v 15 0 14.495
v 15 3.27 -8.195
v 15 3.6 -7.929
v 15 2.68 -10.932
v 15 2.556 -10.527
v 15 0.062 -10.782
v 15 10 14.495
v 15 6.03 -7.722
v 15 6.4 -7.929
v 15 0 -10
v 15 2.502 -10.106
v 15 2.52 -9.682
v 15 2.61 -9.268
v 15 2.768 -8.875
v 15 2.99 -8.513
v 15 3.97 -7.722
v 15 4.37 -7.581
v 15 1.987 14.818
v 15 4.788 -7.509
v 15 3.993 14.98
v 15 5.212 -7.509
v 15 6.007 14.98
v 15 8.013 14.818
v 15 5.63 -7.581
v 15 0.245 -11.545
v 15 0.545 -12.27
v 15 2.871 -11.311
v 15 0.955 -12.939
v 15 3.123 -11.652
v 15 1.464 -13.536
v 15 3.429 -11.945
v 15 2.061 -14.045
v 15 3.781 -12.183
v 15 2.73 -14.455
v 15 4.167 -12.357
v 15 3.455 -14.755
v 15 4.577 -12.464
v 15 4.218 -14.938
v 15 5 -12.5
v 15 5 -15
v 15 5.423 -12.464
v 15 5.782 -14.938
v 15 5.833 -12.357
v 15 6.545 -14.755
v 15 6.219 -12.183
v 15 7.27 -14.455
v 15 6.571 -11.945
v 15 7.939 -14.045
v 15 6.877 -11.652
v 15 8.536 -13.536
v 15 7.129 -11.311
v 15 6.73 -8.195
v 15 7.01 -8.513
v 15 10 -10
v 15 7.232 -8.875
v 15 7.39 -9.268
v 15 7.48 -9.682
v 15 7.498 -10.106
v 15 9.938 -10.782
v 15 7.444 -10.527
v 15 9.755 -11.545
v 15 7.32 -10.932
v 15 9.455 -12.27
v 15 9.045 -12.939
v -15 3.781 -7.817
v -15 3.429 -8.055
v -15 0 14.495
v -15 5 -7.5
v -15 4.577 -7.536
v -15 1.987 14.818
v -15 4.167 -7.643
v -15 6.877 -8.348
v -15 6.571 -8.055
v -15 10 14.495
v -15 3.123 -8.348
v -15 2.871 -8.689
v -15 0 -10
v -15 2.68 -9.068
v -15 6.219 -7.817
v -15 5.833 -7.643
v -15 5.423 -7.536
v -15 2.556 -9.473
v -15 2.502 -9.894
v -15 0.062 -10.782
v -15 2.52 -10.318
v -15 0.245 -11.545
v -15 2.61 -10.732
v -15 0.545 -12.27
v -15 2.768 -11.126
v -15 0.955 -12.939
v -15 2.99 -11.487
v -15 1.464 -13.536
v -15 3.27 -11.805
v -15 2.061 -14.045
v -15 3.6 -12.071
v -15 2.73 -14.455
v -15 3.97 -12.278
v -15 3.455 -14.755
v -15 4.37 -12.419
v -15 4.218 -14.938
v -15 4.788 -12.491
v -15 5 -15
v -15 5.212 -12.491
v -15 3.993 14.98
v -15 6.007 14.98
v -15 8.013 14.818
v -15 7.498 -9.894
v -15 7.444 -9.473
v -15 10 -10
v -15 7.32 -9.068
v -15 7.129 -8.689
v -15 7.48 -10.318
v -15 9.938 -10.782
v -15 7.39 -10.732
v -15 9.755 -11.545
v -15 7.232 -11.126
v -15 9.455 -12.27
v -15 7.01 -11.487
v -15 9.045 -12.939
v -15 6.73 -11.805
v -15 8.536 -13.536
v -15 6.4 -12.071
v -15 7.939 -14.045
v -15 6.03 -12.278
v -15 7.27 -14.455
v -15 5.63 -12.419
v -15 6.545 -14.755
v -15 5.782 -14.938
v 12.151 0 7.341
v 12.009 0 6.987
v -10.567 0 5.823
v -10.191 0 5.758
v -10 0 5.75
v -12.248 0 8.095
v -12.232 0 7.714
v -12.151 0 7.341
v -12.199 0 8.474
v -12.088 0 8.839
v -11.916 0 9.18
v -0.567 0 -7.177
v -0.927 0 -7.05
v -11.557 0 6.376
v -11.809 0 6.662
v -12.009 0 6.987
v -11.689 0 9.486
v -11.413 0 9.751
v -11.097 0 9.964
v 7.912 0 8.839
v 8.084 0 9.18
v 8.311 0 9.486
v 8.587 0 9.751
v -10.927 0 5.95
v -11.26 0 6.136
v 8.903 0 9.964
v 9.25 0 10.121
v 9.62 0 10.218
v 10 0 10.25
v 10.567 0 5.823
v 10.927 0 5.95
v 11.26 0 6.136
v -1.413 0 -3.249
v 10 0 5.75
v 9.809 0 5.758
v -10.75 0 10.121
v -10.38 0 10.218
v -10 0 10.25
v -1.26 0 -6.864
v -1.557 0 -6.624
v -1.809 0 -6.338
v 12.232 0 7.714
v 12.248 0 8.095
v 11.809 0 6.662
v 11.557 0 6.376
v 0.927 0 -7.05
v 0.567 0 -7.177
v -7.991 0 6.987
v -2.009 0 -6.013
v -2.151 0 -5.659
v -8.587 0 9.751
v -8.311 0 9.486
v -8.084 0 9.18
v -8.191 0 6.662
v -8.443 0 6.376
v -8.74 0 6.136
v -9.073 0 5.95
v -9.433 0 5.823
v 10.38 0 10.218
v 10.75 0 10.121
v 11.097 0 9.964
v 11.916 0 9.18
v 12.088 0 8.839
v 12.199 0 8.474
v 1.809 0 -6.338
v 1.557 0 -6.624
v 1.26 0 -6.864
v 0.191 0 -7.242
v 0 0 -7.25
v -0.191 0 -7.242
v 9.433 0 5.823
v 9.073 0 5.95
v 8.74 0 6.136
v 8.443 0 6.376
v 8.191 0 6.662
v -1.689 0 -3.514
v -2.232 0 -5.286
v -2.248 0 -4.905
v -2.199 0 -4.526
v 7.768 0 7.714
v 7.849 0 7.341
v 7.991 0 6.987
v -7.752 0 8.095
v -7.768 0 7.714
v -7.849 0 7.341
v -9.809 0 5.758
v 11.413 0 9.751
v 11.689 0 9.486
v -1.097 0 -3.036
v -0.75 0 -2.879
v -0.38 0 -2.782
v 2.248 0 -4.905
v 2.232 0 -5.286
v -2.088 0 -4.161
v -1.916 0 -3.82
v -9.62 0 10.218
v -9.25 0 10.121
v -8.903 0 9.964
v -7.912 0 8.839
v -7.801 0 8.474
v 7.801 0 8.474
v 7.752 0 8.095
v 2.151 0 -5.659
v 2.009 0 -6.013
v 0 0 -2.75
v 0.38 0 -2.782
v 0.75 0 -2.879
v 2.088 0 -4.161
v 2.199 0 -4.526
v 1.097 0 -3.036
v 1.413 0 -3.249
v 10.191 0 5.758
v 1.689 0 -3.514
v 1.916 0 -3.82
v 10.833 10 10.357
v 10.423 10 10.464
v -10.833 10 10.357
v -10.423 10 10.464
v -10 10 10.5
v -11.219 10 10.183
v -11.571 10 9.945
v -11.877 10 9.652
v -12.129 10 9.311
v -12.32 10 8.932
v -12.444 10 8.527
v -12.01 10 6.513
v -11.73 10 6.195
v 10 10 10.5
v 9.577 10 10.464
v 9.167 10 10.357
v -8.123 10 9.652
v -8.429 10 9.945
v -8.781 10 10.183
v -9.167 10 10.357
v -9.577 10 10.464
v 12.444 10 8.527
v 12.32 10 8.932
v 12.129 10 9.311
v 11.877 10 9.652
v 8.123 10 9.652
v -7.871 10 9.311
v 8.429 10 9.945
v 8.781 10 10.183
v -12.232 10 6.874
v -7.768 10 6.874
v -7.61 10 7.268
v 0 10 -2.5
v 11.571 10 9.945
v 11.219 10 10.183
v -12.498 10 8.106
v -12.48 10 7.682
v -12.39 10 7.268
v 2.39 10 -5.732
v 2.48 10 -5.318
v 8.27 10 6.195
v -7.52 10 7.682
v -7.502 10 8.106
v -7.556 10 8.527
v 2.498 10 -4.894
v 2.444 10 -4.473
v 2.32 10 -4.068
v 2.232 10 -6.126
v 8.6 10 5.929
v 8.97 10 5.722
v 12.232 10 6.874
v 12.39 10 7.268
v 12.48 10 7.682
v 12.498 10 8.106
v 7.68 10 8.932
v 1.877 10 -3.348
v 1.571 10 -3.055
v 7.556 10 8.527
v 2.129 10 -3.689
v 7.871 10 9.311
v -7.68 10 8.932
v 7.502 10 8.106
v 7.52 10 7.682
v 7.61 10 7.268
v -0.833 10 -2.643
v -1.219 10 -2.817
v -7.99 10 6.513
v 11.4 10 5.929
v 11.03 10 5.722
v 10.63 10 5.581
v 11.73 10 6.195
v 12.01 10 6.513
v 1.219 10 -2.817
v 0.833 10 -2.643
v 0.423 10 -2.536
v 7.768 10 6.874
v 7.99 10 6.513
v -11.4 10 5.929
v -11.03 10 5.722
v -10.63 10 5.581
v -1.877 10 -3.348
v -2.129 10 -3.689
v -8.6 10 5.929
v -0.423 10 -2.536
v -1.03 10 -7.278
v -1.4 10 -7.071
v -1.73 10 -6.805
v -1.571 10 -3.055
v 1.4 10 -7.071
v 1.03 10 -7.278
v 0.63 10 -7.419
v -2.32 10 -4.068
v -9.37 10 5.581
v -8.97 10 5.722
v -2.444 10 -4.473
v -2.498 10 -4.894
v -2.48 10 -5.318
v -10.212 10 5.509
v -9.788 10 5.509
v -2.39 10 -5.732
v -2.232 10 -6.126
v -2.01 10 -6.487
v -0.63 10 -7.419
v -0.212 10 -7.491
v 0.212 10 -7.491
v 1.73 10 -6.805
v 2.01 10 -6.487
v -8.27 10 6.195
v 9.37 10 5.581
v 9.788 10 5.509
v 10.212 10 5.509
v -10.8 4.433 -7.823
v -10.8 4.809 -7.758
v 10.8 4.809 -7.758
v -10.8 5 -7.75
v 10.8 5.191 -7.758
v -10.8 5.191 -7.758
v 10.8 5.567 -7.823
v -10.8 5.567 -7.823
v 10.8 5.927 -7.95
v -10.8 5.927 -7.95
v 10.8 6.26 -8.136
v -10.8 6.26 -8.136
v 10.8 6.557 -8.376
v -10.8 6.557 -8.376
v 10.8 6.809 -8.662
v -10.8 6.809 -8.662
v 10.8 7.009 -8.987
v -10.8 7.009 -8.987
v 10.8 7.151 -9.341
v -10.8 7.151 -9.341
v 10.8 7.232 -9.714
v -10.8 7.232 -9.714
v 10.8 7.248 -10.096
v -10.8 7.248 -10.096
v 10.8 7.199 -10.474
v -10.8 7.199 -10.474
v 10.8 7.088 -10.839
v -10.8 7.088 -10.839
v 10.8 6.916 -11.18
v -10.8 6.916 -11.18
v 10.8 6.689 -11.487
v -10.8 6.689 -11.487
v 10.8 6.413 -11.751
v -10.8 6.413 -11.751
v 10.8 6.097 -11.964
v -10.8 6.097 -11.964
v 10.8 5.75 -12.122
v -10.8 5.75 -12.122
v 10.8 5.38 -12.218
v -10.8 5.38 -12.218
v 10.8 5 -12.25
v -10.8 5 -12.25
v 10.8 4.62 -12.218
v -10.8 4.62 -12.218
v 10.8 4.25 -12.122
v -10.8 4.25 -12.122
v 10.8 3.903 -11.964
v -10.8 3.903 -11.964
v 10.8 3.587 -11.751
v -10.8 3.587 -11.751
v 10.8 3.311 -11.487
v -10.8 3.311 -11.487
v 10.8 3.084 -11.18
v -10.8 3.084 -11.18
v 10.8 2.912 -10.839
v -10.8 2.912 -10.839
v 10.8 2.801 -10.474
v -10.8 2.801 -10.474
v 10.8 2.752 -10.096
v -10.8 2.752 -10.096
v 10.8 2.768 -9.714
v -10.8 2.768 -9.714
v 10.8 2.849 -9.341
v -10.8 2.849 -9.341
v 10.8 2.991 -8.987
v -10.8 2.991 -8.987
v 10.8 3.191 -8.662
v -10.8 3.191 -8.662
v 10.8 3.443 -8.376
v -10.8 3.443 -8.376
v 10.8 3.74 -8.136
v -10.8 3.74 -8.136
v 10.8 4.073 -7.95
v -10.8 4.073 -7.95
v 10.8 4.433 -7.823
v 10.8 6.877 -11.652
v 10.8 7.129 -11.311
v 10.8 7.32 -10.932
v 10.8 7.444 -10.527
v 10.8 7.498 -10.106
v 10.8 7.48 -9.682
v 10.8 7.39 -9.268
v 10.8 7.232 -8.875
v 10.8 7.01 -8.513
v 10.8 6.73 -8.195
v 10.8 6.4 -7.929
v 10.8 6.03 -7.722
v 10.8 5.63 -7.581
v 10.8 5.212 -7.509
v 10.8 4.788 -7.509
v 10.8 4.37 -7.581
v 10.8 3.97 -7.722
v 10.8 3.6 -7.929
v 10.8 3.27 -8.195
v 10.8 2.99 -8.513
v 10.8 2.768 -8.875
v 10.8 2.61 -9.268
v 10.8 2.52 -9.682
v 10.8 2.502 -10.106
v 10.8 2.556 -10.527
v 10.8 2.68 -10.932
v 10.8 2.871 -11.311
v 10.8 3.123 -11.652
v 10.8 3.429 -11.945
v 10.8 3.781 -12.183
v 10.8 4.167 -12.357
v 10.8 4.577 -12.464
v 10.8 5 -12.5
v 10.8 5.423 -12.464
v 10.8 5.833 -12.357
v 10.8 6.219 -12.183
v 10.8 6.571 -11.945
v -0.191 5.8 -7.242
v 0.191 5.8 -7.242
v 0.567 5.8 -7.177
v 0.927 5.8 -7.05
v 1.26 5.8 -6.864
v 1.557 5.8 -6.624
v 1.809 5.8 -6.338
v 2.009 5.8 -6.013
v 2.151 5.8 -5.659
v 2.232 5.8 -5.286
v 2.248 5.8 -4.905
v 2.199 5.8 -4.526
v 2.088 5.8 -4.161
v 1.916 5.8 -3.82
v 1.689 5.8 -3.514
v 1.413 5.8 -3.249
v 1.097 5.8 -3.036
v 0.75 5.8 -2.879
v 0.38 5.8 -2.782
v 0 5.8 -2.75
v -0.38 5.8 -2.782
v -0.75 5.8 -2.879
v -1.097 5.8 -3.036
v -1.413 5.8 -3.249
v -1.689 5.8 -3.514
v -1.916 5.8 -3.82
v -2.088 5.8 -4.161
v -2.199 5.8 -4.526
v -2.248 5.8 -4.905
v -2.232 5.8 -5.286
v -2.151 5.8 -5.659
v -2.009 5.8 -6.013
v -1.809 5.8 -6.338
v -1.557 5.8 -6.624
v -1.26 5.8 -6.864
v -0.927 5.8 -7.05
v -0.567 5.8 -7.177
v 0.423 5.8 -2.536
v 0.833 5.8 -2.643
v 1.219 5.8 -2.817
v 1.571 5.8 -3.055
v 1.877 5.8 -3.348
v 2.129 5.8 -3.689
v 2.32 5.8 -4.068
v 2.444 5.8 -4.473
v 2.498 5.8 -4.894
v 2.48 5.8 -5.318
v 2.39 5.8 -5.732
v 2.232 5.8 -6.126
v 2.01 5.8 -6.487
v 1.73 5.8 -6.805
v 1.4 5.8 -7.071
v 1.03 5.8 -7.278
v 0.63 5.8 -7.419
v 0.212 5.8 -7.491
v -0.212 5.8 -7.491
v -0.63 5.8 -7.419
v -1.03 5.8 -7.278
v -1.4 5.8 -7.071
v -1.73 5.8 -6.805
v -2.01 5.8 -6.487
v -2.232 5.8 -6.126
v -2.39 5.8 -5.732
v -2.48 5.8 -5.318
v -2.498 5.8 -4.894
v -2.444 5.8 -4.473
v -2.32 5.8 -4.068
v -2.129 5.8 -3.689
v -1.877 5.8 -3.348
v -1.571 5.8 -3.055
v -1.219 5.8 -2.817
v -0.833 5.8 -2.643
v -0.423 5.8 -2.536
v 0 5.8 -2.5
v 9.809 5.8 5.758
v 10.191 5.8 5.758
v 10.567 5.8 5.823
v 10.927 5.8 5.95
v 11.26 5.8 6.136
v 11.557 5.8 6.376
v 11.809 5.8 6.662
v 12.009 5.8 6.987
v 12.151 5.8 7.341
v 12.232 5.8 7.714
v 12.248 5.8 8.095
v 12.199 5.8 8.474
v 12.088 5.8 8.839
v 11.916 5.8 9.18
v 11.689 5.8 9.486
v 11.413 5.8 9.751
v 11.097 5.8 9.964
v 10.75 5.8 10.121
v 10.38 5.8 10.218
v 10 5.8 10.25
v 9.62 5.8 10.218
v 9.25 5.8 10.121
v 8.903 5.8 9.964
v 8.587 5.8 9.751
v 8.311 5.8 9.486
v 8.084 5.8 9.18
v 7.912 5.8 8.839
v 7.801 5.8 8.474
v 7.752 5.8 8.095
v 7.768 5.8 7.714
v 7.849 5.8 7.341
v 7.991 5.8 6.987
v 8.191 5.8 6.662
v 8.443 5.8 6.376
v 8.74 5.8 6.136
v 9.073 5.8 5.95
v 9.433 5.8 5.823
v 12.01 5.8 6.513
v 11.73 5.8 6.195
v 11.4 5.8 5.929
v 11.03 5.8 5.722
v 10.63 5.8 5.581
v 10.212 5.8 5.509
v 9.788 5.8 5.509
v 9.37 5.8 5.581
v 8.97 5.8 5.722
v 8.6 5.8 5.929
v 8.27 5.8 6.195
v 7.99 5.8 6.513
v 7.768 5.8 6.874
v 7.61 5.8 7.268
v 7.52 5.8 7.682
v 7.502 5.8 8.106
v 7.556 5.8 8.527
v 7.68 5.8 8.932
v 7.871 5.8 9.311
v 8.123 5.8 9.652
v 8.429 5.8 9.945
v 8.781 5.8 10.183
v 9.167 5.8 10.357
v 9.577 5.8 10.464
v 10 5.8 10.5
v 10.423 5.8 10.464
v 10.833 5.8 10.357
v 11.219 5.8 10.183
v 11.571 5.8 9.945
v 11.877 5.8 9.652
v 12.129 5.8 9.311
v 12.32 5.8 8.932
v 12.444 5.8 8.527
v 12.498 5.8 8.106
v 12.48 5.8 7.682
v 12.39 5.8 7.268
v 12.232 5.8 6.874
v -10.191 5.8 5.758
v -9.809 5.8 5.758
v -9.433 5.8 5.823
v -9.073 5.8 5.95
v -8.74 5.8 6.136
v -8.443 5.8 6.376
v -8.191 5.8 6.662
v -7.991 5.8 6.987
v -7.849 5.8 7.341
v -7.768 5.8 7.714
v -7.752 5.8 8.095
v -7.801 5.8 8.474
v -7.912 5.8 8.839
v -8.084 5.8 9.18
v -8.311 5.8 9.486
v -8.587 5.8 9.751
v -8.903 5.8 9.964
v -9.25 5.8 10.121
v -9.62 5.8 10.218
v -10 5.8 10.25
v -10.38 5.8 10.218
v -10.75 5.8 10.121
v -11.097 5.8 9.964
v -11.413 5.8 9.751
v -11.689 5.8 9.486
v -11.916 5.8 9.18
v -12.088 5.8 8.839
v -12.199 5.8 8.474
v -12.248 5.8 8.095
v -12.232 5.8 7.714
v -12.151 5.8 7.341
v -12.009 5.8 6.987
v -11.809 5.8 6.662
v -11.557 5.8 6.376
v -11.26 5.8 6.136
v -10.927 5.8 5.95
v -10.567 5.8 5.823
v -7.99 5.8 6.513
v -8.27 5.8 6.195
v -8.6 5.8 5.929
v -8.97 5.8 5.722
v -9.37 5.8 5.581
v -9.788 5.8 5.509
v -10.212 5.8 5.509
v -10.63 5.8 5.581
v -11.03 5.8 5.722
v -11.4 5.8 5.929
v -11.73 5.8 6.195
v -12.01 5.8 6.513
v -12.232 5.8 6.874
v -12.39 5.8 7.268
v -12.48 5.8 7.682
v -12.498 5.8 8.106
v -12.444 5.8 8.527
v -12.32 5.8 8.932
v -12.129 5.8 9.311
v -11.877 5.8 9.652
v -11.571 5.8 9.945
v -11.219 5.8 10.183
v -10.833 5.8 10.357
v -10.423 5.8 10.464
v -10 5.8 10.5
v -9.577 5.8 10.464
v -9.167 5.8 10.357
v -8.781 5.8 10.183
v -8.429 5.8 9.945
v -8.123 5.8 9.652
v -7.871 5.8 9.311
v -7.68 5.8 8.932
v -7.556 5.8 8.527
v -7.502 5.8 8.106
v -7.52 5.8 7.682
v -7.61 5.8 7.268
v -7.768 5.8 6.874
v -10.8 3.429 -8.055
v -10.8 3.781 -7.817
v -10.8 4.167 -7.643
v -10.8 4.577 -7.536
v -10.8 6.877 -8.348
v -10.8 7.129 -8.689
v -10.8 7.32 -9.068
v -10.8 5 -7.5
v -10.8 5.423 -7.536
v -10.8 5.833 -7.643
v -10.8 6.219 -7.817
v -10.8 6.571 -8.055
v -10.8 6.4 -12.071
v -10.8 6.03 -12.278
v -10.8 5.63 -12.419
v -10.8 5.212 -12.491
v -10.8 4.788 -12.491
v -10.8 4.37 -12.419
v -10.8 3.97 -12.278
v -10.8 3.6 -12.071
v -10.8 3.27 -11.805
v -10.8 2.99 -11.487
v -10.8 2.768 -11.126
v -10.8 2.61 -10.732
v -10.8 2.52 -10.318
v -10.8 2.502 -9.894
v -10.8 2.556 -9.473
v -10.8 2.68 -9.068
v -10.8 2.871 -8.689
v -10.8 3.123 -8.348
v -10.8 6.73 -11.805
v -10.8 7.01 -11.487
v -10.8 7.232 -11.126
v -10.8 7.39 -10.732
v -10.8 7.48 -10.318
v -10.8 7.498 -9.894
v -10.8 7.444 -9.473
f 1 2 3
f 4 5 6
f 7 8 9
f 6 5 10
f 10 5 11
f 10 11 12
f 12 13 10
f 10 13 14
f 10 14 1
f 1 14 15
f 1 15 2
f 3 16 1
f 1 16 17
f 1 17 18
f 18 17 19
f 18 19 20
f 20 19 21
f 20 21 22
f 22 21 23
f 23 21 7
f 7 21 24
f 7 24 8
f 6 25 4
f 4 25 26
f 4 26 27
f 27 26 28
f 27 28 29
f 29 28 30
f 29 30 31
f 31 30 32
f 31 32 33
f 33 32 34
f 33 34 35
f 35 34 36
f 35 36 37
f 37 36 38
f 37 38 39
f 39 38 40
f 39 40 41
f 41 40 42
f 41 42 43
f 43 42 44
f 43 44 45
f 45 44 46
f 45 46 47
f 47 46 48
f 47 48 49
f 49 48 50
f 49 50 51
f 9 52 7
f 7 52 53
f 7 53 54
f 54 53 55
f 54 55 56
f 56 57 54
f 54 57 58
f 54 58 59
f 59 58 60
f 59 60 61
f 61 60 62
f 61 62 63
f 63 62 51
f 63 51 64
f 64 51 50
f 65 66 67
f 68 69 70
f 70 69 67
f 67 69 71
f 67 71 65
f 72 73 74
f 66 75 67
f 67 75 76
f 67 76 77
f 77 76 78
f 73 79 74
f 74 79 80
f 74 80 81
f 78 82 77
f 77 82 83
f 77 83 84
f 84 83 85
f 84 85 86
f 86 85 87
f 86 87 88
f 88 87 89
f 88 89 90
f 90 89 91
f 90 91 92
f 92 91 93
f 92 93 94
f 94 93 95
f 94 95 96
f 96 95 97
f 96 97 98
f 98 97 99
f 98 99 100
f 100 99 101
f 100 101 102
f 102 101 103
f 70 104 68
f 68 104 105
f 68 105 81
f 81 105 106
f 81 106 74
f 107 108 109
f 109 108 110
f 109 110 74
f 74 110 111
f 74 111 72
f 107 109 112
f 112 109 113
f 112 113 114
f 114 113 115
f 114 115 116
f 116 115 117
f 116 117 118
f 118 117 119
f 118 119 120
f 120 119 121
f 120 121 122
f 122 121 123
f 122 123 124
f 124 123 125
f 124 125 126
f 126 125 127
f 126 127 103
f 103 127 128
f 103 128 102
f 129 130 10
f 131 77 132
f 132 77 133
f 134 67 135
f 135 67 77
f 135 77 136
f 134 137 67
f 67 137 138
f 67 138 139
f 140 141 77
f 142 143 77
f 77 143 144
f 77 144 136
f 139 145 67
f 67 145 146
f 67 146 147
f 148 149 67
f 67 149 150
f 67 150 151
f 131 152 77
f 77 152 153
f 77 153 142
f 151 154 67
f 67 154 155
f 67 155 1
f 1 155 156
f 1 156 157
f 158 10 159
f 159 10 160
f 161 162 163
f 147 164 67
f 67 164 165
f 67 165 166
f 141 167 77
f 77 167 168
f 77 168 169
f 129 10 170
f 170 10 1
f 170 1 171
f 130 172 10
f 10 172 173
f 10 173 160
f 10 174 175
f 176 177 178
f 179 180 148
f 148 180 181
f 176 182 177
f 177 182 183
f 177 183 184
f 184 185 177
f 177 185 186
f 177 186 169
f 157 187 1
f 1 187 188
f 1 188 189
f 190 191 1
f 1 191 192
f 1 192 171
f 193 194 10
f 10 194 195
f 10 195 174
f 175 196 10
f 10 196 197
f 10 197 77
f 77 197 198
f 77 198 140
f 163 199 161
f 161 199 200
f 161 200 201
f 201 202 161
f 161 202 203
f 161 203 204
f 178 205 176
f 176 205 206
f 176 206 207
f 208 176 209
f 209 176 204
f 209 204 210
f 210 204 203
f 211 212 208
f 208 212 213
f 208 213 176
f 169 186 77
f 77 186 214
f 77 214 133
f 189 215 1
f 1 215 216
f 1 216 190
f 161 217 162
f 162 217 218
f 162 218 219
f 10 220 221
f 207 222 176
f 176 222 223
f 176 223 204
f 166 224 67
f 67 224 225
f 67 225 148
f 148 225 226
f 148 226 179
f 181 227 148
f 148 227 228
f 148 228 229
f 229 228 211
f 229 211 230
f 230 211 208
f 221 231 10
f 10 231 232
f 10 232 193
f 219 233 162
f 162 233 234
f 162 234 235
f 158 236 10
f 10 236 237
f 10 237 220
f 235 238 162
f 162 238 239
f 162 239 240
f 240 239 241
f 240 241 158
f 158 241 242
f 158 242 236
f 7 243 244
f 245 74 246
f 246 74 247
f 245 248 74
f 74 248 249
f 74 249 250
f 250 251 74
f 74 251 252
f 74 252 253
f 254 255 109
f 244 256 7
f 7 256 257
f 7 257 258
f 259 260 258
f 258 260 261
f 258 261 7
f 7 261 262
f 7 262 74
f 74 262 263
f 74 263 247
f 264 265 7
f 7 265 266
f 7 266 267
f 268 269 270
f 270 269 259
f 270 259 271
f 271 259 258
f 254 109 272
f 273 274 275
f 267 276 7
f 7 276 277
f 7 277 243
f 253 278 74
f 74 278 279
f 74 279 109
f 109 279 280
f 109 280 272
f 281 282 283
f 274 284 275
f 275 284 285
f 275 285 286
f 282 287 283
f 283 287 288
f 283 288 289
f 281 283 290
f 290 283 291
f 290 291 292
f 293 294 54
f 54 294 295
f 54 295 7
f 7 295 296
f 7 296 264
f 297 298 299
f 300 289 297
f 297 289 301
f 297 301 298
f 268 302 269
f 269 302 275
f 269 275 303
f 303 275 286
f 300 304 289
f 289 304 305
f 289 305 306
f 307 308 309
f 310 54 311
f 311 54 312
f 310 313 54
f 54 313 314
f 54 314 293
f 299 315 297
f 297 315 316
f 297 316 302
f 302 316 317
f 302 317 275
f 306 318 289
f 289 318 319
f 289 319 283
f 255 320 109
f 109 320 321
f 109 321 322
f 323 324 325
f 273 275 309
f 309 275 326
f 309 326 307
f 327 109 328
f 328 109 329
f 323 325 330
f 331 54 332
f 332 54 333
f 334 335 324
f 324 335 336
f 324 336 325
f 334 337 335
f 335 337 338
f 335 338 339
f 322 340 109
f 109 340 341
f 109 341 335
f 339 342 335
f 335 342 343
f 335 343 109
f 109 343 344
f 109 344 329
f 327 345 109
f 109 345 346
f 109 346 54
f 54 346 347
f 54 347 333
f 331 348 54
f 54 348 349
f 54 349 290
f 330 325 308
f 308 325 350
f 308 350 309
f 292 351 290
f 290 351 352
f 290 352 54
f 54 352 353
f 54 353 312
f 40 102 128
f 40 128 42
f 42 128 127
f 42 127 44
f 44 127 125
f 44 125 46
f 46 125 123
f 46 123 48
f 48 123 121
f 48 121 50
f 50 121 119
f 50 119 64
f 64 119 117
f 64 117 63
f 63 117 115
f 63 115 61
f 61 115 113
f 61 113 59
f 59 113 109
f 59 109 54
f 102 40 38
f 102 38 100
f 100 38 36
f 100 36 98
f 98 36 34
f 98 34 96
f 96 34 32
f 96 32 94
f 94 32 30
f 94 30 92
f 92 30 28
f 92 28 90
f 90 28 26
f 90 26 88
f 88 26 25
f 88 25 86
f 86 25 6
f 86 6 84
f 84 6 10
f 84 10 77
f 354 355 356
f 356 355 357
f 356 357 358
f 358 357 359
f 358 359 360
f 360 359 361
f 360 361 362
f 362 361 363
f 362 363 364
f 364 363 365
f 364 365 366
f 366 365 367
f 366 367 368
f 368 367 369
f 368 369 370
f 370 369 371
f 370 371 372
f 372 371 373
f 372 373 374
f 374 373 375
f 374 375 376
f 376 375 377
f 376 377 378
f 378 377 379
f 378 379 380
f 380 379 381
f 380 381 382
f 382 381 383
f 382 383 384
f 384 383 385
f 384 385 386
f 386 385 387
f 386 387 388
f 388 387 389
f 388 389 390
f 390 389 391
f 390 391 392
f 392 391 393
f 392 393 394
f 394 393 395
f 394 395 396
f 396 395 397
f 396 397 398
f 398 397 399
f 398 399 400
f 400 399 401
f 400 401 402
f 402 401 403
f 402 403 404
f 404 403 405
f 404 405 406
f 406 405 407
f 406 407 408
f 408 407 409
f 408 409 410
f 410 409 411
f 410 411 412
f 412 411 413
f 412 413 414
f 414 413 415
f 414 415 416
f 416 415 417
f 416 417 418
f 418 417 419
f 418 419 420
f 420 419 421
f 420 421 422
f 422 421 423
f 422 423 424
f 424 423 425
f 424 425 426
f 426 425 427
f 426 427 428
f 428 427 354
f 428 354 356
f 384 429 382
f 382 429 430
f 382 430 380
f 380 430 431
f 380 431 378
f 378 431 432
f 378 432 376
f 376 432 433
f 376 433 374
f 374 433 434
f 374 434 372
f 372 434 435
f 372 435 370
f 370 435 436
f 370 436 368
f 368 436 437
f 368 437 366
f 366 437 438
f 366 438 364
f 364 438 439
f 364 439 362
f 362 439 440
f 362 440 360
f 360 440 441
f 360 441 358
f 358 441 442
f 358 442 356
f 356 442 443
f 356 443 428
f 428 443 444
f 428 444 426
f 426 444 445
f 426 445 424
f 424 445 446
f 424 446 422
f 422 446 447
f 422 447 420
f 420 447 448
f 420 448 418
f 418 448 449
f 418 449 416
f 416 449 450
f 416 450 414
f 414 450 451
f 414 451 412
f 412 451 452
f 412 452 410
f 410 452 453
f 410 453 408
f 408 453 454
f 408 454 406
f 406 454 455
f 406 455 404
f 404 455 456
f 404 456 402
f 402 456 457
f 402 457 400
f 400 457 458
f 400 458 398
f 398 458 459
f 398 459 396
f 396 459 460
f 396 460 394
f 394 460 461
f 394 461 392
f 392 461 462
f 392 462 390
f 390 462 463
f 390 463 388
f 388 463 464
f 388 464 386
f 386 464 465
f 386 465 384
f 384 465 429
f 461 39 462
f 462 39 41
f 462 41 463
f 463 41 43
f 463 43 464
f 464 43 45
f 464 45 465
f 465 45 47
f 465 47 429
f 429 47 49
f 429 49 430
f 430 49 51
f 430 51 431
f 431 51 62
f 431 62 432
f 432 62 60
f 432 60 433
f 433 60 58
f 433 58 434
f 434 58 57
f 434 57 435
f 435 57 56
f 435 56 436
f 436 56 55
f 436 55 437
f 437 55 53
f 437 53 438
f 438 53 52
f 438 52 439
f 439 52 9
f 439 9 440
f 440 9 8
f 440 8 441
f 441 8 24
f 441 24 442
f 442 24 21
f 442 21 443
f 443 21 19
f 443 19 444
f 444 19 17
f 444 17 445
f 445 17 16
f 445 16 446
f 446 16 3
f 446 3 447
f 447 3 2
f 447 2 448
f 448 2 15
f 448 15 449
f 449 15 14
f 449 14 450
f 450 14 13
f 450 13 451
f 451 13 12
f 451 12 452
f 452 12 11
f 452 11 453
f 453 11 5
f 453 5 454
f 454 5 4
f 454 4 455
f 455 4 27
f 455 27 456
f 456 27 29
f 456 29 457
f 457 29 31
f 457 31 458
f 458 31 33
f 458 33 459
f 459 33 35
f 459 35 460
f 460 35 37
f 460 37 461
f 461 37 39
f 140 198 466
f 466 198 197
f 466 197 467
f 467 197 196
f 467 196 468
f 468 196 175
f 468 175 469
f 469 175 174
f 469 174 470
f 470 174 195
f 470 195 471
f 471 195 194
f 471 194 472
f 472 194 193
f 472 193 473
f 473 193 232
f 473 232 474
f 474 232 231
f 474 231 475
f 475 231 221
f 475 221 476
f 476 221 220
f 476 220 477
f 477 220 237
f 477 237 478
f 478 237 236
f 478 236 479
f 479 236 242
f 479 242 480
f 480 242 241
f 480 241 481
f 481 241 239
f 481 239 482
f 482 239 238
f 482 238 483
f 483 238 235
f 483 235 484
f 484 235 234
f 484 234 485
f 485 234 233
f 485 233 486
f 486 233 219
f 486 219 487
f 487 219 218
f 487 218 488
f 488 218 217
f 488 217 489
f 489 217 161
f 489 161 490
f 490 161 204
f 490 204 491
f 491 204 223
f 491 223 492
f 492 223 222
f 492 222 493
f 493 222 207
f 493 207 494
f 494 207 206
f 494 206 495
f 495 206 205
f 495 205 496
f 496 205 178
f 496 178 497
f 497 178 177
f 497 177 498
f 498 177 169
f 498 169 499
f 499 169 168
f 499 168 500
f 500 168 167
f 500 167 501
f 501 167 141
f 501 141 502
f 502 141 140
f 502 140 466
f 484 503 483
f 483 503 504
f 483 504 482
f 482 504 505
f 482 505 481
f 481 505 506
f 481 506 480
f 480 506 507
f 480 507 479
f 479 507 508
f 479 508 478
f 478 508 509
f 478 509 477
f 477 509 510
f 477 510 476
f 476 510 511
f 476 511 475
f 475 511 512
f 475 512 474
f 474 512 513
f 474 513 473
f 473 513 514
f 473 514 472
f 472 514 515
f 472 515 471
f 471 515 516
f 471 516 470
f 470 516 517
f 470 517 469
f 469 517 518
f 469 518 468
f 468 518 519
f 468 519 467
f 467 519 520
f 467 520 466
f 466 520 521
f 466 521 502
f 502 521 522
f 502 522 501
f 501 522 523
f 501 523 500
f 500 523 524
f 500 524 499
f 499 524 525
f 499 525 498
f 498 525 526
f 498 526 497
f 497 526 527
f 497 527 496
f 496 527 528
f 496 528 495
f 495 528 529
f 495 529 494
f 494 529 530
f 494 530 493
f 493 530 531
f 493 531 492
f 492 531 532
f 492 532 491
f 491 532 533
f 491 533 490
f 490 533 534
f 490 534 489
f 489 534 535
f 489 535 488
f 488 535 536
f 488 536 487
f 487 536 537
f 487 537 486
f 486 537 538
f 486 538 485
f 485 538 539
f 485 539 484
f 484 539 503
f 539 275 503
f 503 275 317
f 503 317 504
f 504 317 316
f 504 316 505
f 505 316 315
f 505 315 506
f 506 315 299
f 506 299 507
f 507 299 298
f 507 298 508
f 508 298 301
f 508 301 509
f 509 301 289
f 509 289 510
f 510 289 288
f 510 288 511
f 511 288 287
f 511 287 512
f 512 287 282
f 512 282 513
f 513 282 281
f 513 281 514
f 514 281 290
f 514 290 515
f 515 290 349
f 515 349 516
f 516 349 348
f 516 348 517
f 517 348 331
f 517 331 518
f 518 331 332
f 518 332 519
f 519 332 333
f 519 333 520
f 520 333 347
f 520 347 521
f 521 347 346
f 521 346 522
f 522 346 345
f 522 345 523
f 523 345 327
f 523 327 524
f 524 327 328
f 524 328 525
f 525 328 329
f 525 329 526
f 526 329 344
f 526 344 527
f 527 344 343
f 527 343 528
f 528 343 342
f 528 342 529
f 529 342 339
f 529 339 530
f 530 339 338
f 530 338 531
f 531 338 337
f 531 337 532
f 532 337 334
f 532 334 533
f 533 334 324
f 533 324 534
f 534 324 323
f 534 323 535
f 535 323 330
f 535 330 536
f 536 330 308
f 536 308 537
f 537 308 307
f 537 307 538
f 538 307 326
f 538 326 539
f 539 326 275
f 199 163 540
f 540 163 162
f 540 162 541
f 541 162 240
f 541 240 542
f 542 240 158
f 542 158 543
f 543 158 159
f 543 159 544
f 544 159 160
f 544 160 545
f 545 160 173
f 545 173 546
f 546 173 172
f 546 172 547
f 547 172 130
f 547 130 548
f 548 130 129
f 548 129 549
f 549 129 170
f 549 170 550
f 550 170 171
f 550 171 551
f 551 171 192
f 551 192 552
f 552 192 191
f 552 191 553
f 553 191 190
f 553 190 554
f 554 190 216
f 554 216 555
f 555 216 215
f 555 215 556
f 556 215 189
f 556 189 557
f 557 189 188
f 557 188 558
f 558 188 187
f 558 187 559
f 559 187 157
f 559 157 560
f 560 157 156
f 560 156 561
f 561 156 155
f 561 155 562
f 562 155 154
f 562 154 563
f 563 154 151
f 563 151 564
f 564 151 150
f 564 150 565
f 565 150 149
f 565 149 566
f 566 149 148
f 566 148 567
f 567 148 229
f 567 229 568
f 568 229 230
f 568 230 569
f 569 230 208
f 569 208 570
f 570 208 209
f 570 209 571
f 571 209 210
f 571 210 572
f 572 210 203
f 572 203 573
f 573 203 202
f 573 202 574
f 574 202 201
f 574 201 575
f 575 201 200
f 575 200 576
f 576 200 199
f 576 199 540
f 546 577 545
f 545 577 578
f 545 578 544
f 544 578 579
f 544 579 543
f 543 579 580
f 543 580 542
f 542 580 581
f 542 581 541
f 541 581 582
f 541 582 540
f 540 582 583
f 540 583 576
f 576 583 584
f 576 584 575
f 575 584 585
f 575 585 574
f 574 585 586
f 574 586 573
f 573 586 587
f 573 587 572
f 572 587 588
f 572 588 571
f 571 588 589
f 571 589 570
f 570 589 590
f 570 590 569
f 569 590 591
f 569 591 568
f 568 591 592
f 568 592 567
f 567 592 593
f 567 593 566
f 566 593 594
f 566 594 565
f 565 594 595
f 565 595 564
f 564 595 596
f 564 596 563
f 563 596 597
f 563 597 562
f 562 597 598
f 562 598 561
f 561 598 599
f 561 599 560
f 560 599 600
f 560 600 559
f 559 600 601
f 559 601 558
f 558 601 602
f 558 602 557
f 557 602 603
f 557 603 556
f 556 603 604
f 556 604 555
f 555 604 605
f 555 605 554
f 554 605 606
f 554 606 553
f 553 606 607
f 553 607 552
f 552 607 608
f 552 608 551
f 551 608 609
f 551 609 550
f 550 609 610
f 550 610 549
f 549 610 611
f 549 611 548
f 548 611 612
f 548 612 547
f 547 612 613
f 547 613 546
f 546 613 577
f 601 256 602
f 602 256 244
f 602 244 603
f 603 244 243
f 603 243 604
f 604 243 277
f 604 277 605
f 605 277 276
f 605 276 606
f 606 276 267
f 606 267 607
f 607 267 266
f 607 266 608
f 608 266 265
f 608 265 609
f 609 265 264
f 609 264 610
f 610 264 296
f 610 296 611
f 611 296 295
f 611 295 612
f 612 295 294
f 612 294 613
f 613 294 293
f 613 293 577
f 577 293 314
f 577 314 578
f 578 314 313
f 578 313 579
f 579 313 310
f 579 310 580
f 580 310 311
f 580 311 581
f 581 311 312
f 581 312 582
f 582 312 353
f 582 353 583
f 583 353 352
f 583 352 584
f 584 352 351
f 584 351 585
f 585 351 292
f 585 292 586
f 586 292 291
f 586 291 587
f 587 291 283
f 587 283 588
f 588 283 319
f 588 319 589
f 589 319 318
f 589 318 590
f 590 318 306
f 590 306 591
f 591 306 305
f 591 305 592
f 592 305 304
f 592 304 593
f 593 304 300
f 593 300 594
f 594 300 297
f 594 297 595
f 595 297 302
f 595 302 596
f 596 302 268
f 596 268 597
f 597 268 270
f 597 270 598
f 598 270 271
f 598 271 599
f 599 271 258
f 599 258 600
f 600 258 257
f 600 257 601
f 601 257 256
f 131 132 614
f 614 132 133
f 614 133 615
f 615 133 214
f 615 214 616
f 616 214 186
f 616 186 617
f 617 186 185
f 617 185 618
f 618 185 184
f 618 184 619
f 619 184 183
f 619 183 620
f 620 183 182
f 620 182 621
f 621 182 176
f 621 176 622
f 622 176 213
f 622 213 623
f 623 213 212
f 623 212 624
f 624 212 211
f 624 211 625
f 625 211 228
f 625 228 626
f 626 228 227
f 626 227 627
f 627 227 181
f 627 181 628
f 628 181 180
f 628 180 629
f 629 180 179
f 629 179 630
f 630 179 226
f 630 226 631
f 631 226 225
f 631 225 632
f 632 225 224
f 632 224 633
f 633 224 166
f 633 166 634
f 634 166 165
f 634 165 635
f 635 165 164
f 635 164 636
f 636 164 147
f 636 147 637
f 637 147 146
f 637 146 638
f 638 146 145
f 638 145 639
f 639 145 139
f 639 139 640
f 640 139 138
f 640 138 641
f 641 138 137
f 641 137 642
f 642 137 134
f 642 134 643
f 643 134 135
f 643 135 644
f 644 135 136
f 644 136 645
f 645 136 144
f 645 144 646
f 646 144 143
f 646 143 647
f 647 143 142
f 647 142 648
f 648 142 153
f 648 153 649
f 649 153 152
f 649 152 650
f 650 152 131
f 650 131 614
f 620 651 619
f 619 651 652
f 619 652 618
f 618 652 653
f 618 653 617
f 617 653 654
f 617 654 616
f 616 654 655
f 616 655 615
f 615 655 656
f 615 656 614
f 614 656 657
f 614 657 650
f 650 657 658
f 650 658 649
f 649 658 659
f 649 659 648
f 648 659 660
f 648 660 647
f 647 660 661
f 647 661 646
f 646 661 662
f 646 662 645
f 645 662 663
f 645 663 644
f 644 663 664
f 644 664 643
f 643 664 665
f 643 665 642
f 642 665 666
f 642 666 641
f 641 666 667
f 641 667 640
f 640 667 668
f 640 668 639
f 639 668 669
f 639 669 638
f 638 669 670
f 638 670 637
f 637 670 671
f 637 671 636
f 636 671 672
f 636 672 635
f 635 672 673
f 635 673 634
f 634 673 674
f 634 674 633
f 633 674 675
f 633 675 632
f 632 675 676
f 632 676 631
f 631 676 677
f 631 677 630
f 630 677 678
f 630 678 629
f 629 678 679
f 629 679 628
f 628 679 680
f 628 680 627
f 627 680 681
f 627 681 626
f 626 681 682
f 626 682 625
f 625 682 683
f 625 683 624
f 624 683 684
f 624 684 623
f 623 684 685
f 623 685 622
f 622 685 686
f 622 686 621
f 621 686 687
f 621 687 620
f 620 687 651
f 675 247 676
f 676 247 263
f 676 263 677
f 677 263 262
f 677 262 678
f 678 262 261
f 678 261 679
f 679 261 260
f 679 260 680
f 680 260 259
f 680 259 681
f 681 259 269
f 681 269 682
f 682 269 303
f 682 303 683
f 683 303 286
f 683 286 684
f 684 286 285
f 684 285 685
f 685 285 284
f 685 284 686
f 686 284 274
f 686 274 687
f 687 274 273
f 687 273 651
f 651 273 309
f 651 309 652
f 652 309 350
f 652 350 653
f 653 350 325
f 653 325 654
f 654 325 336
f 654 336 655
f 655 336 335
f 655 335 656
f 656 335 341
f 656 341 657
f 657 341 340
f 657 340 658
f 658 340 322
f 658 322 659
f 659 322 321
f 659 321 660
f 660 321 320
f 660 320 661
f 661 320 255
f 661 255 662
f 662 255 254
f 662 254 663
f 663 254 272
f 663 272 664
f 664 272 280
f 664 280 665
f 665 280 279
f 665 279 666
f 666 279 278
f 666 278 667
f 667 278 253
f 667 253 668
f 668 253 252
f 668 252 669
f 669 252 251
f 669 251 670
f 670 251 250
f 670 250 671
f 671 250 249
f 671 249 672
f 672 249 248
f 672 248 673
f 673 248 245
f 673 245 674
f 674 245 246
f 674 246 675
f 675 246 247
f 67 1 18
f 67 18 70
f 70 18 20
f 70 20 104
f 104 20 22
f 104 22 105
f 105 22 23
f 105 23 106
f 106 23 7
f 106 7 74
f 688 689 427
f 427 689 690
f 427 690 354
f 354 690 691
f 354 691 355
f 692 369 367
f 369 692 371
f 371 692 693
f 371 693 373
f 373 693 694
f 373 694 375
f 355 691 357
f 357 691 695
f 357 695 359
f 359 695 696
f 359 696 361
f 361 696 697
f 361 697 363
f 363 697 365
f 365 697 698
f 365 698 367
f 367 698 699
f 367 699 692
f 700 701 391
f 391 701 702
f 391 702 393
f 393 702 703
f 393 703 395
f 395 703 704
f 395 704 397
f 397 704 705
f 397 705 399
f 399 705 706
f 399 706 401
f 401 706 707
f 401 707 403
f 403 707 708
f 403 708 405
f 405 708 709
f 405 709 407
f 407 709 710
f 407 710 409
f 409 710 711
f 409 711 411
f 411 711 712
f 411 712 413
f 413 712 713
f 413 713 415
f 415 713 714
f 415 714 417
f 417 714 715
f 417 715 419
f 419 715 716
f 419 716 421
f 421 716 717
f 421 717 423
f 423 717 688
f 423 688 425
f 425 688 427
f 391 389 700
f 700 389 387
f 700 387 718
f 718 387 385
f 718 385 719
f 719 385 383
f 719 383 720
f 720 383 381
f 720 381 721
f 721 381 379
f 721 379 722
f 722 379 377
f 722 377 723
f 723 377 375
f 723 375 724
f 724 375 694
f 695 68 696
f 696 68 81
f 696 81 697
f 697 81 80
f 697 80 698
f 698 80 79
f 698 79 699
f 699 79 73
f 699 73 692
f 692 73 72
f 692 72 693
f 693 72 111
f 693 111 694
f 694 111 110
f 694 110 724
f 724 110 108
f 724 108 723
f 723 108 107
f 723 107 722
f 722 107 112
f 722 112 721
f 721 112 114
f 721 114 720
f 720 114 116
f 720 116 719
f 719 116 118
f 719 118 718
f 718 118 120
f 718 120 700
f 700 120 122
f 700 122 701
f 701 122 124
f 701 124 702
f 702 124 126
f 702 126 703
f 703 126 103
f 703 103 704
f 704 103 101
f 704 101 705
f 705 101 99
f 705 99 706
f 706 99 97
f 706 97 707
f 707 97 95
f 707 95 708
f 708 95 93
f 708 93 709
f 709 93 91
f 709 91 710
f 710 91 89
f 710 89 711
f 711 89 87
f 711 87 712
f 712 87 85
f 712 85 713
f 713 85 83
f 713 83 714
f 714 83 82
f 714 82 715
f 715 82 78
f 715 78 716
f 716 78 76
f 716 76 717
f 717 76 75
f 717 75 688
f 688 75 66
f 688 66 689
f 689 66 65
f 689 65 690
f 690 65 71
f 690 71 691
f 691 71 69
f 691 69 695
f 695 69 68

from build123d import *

# Parameters (mm, degrees)
SKETCH1_W                               = 30
SKETCH1_H                               = 30
BOSS_EXTRUDE1_DEPTH                     = 10
FILLET1_R                               = 5
CBORE_FOR_M5_HEX_HEAD_BOLT2_D           = 4.5
CBORE_FOR_M5_HEX_HEAD_BOLT2_CBORE_D     = 5
CBORE_FOR_M5_HEX_HEAD_BOLT2_CBORE_DEPTH = 4.2
CBORE_FOR_M5_HEX_HEAD_BOLT1_D           = 4.5
CBORE_FOR_M5_HEX_HEAD_BOLT1_CBORE_D     = 5
CBORE_FOR_M5_HEX_HEAD_BOLT1_CBORE_DEPTH = 4.2
CUT_EXTRUDE1_DEPTH                      = 36


with BuildPart() as part:
    # Sketch1 → Boss-Extrude1 (new body)
    with BuildSketch(Plane(origin=(0, 0, 0), x_dir=(1, 0, 0), z_dir=(0, 1, 0))):
        Rectangle(SKETCH1_W, SKETCH1_H)
    extrude(amount=BOSS_EXTRUDE1_DEPTH)

    # Fillet1
    fillet1_edges = [part.edges().sort_by_distance(p)[0] for p in [
        (0, 0, -15),
        (0, 10, -15),
    ]]
    fillet(fillet1_edges, radius=FILLET1_R - 0.0001)  # a hair under: the kernel refuses the full size

    # CBORE for M5 Hex Head Bolt2 (through all)
    with Locations(Plane(origin=(15, 0, 0), x_dir=(0, 0, -1), z_dir=(1, 0, 0))):
        with Locations((10, 5)):
            cbore_for_m5_hex_head_bolt2 = CounterBoreHole(CBORE_FOR_M5_HEX_HEAD_BOLT2_D / 2, CBORE_FOR_M5_HEX_HEAD_BOLT2_CBORE_D / 2, CBORE_FOR_M5_HEX_HEAD_BOLT2_CBORE_DEPTH)

    # CBORE for M5 Hex Head Bolt1 (through all)
    with Locations(Plane(origin=(0, 10, 0), x_dir=(1, 0, 0), z_dir=(0, 1, 0))):
        with Locations((-10, -8), (10, -8), (0, 5)):
            CounterBoreHole(CBORE_FOR_M5_HEX_HEAD_BOLT1_D / 2, CBORE_FOR_M5_HEX_HEAD_BOLT1_CBORE_D / 2, CBORE_FOR_M5_HEX_HEAD_BOLT1_CBORE_DEPTH)

    # Sketch9 → Cut-Extrude1 (cut, through all)
    with BuildSketch(Plane(origin=(15, 0, 0), x_dir=(0, 0, -1), z_dir=(1, 0, 0))):
        with BuildLine():
            Line((-15, 10), (-15, 5))
            ThreePointArc((-15, 5), (-14.873403825, 7.51272405), (-14.494897428, 10))
            Line((-14.494897428, 10), (-15, 10))
        make_face()
        with BuildLine():
            Line((-15, 0), (-14.494897428, 0))
            ThreePointArc((-14.494897428, 0), (-14.873403825, 2.48727595), (-15, 5))
            Line((-15, 5), (-15, 0))
        make_face()
    extrude(amount=-CUT_EXTRUDE1_DEPTH, mode=Mode.SUBTRACT)

    # Mirror1: CBORE for M5 Hex Head Bolt2 across plane
    add(cbore_for_m5_hex_head_bolt2.mirror(Plane(origin=(0, 0, 0), x_dir=(0, 0, 1), z_dir=(1, 0, 0))), mode=Mode.SUBTRACT)


solid = part.part
